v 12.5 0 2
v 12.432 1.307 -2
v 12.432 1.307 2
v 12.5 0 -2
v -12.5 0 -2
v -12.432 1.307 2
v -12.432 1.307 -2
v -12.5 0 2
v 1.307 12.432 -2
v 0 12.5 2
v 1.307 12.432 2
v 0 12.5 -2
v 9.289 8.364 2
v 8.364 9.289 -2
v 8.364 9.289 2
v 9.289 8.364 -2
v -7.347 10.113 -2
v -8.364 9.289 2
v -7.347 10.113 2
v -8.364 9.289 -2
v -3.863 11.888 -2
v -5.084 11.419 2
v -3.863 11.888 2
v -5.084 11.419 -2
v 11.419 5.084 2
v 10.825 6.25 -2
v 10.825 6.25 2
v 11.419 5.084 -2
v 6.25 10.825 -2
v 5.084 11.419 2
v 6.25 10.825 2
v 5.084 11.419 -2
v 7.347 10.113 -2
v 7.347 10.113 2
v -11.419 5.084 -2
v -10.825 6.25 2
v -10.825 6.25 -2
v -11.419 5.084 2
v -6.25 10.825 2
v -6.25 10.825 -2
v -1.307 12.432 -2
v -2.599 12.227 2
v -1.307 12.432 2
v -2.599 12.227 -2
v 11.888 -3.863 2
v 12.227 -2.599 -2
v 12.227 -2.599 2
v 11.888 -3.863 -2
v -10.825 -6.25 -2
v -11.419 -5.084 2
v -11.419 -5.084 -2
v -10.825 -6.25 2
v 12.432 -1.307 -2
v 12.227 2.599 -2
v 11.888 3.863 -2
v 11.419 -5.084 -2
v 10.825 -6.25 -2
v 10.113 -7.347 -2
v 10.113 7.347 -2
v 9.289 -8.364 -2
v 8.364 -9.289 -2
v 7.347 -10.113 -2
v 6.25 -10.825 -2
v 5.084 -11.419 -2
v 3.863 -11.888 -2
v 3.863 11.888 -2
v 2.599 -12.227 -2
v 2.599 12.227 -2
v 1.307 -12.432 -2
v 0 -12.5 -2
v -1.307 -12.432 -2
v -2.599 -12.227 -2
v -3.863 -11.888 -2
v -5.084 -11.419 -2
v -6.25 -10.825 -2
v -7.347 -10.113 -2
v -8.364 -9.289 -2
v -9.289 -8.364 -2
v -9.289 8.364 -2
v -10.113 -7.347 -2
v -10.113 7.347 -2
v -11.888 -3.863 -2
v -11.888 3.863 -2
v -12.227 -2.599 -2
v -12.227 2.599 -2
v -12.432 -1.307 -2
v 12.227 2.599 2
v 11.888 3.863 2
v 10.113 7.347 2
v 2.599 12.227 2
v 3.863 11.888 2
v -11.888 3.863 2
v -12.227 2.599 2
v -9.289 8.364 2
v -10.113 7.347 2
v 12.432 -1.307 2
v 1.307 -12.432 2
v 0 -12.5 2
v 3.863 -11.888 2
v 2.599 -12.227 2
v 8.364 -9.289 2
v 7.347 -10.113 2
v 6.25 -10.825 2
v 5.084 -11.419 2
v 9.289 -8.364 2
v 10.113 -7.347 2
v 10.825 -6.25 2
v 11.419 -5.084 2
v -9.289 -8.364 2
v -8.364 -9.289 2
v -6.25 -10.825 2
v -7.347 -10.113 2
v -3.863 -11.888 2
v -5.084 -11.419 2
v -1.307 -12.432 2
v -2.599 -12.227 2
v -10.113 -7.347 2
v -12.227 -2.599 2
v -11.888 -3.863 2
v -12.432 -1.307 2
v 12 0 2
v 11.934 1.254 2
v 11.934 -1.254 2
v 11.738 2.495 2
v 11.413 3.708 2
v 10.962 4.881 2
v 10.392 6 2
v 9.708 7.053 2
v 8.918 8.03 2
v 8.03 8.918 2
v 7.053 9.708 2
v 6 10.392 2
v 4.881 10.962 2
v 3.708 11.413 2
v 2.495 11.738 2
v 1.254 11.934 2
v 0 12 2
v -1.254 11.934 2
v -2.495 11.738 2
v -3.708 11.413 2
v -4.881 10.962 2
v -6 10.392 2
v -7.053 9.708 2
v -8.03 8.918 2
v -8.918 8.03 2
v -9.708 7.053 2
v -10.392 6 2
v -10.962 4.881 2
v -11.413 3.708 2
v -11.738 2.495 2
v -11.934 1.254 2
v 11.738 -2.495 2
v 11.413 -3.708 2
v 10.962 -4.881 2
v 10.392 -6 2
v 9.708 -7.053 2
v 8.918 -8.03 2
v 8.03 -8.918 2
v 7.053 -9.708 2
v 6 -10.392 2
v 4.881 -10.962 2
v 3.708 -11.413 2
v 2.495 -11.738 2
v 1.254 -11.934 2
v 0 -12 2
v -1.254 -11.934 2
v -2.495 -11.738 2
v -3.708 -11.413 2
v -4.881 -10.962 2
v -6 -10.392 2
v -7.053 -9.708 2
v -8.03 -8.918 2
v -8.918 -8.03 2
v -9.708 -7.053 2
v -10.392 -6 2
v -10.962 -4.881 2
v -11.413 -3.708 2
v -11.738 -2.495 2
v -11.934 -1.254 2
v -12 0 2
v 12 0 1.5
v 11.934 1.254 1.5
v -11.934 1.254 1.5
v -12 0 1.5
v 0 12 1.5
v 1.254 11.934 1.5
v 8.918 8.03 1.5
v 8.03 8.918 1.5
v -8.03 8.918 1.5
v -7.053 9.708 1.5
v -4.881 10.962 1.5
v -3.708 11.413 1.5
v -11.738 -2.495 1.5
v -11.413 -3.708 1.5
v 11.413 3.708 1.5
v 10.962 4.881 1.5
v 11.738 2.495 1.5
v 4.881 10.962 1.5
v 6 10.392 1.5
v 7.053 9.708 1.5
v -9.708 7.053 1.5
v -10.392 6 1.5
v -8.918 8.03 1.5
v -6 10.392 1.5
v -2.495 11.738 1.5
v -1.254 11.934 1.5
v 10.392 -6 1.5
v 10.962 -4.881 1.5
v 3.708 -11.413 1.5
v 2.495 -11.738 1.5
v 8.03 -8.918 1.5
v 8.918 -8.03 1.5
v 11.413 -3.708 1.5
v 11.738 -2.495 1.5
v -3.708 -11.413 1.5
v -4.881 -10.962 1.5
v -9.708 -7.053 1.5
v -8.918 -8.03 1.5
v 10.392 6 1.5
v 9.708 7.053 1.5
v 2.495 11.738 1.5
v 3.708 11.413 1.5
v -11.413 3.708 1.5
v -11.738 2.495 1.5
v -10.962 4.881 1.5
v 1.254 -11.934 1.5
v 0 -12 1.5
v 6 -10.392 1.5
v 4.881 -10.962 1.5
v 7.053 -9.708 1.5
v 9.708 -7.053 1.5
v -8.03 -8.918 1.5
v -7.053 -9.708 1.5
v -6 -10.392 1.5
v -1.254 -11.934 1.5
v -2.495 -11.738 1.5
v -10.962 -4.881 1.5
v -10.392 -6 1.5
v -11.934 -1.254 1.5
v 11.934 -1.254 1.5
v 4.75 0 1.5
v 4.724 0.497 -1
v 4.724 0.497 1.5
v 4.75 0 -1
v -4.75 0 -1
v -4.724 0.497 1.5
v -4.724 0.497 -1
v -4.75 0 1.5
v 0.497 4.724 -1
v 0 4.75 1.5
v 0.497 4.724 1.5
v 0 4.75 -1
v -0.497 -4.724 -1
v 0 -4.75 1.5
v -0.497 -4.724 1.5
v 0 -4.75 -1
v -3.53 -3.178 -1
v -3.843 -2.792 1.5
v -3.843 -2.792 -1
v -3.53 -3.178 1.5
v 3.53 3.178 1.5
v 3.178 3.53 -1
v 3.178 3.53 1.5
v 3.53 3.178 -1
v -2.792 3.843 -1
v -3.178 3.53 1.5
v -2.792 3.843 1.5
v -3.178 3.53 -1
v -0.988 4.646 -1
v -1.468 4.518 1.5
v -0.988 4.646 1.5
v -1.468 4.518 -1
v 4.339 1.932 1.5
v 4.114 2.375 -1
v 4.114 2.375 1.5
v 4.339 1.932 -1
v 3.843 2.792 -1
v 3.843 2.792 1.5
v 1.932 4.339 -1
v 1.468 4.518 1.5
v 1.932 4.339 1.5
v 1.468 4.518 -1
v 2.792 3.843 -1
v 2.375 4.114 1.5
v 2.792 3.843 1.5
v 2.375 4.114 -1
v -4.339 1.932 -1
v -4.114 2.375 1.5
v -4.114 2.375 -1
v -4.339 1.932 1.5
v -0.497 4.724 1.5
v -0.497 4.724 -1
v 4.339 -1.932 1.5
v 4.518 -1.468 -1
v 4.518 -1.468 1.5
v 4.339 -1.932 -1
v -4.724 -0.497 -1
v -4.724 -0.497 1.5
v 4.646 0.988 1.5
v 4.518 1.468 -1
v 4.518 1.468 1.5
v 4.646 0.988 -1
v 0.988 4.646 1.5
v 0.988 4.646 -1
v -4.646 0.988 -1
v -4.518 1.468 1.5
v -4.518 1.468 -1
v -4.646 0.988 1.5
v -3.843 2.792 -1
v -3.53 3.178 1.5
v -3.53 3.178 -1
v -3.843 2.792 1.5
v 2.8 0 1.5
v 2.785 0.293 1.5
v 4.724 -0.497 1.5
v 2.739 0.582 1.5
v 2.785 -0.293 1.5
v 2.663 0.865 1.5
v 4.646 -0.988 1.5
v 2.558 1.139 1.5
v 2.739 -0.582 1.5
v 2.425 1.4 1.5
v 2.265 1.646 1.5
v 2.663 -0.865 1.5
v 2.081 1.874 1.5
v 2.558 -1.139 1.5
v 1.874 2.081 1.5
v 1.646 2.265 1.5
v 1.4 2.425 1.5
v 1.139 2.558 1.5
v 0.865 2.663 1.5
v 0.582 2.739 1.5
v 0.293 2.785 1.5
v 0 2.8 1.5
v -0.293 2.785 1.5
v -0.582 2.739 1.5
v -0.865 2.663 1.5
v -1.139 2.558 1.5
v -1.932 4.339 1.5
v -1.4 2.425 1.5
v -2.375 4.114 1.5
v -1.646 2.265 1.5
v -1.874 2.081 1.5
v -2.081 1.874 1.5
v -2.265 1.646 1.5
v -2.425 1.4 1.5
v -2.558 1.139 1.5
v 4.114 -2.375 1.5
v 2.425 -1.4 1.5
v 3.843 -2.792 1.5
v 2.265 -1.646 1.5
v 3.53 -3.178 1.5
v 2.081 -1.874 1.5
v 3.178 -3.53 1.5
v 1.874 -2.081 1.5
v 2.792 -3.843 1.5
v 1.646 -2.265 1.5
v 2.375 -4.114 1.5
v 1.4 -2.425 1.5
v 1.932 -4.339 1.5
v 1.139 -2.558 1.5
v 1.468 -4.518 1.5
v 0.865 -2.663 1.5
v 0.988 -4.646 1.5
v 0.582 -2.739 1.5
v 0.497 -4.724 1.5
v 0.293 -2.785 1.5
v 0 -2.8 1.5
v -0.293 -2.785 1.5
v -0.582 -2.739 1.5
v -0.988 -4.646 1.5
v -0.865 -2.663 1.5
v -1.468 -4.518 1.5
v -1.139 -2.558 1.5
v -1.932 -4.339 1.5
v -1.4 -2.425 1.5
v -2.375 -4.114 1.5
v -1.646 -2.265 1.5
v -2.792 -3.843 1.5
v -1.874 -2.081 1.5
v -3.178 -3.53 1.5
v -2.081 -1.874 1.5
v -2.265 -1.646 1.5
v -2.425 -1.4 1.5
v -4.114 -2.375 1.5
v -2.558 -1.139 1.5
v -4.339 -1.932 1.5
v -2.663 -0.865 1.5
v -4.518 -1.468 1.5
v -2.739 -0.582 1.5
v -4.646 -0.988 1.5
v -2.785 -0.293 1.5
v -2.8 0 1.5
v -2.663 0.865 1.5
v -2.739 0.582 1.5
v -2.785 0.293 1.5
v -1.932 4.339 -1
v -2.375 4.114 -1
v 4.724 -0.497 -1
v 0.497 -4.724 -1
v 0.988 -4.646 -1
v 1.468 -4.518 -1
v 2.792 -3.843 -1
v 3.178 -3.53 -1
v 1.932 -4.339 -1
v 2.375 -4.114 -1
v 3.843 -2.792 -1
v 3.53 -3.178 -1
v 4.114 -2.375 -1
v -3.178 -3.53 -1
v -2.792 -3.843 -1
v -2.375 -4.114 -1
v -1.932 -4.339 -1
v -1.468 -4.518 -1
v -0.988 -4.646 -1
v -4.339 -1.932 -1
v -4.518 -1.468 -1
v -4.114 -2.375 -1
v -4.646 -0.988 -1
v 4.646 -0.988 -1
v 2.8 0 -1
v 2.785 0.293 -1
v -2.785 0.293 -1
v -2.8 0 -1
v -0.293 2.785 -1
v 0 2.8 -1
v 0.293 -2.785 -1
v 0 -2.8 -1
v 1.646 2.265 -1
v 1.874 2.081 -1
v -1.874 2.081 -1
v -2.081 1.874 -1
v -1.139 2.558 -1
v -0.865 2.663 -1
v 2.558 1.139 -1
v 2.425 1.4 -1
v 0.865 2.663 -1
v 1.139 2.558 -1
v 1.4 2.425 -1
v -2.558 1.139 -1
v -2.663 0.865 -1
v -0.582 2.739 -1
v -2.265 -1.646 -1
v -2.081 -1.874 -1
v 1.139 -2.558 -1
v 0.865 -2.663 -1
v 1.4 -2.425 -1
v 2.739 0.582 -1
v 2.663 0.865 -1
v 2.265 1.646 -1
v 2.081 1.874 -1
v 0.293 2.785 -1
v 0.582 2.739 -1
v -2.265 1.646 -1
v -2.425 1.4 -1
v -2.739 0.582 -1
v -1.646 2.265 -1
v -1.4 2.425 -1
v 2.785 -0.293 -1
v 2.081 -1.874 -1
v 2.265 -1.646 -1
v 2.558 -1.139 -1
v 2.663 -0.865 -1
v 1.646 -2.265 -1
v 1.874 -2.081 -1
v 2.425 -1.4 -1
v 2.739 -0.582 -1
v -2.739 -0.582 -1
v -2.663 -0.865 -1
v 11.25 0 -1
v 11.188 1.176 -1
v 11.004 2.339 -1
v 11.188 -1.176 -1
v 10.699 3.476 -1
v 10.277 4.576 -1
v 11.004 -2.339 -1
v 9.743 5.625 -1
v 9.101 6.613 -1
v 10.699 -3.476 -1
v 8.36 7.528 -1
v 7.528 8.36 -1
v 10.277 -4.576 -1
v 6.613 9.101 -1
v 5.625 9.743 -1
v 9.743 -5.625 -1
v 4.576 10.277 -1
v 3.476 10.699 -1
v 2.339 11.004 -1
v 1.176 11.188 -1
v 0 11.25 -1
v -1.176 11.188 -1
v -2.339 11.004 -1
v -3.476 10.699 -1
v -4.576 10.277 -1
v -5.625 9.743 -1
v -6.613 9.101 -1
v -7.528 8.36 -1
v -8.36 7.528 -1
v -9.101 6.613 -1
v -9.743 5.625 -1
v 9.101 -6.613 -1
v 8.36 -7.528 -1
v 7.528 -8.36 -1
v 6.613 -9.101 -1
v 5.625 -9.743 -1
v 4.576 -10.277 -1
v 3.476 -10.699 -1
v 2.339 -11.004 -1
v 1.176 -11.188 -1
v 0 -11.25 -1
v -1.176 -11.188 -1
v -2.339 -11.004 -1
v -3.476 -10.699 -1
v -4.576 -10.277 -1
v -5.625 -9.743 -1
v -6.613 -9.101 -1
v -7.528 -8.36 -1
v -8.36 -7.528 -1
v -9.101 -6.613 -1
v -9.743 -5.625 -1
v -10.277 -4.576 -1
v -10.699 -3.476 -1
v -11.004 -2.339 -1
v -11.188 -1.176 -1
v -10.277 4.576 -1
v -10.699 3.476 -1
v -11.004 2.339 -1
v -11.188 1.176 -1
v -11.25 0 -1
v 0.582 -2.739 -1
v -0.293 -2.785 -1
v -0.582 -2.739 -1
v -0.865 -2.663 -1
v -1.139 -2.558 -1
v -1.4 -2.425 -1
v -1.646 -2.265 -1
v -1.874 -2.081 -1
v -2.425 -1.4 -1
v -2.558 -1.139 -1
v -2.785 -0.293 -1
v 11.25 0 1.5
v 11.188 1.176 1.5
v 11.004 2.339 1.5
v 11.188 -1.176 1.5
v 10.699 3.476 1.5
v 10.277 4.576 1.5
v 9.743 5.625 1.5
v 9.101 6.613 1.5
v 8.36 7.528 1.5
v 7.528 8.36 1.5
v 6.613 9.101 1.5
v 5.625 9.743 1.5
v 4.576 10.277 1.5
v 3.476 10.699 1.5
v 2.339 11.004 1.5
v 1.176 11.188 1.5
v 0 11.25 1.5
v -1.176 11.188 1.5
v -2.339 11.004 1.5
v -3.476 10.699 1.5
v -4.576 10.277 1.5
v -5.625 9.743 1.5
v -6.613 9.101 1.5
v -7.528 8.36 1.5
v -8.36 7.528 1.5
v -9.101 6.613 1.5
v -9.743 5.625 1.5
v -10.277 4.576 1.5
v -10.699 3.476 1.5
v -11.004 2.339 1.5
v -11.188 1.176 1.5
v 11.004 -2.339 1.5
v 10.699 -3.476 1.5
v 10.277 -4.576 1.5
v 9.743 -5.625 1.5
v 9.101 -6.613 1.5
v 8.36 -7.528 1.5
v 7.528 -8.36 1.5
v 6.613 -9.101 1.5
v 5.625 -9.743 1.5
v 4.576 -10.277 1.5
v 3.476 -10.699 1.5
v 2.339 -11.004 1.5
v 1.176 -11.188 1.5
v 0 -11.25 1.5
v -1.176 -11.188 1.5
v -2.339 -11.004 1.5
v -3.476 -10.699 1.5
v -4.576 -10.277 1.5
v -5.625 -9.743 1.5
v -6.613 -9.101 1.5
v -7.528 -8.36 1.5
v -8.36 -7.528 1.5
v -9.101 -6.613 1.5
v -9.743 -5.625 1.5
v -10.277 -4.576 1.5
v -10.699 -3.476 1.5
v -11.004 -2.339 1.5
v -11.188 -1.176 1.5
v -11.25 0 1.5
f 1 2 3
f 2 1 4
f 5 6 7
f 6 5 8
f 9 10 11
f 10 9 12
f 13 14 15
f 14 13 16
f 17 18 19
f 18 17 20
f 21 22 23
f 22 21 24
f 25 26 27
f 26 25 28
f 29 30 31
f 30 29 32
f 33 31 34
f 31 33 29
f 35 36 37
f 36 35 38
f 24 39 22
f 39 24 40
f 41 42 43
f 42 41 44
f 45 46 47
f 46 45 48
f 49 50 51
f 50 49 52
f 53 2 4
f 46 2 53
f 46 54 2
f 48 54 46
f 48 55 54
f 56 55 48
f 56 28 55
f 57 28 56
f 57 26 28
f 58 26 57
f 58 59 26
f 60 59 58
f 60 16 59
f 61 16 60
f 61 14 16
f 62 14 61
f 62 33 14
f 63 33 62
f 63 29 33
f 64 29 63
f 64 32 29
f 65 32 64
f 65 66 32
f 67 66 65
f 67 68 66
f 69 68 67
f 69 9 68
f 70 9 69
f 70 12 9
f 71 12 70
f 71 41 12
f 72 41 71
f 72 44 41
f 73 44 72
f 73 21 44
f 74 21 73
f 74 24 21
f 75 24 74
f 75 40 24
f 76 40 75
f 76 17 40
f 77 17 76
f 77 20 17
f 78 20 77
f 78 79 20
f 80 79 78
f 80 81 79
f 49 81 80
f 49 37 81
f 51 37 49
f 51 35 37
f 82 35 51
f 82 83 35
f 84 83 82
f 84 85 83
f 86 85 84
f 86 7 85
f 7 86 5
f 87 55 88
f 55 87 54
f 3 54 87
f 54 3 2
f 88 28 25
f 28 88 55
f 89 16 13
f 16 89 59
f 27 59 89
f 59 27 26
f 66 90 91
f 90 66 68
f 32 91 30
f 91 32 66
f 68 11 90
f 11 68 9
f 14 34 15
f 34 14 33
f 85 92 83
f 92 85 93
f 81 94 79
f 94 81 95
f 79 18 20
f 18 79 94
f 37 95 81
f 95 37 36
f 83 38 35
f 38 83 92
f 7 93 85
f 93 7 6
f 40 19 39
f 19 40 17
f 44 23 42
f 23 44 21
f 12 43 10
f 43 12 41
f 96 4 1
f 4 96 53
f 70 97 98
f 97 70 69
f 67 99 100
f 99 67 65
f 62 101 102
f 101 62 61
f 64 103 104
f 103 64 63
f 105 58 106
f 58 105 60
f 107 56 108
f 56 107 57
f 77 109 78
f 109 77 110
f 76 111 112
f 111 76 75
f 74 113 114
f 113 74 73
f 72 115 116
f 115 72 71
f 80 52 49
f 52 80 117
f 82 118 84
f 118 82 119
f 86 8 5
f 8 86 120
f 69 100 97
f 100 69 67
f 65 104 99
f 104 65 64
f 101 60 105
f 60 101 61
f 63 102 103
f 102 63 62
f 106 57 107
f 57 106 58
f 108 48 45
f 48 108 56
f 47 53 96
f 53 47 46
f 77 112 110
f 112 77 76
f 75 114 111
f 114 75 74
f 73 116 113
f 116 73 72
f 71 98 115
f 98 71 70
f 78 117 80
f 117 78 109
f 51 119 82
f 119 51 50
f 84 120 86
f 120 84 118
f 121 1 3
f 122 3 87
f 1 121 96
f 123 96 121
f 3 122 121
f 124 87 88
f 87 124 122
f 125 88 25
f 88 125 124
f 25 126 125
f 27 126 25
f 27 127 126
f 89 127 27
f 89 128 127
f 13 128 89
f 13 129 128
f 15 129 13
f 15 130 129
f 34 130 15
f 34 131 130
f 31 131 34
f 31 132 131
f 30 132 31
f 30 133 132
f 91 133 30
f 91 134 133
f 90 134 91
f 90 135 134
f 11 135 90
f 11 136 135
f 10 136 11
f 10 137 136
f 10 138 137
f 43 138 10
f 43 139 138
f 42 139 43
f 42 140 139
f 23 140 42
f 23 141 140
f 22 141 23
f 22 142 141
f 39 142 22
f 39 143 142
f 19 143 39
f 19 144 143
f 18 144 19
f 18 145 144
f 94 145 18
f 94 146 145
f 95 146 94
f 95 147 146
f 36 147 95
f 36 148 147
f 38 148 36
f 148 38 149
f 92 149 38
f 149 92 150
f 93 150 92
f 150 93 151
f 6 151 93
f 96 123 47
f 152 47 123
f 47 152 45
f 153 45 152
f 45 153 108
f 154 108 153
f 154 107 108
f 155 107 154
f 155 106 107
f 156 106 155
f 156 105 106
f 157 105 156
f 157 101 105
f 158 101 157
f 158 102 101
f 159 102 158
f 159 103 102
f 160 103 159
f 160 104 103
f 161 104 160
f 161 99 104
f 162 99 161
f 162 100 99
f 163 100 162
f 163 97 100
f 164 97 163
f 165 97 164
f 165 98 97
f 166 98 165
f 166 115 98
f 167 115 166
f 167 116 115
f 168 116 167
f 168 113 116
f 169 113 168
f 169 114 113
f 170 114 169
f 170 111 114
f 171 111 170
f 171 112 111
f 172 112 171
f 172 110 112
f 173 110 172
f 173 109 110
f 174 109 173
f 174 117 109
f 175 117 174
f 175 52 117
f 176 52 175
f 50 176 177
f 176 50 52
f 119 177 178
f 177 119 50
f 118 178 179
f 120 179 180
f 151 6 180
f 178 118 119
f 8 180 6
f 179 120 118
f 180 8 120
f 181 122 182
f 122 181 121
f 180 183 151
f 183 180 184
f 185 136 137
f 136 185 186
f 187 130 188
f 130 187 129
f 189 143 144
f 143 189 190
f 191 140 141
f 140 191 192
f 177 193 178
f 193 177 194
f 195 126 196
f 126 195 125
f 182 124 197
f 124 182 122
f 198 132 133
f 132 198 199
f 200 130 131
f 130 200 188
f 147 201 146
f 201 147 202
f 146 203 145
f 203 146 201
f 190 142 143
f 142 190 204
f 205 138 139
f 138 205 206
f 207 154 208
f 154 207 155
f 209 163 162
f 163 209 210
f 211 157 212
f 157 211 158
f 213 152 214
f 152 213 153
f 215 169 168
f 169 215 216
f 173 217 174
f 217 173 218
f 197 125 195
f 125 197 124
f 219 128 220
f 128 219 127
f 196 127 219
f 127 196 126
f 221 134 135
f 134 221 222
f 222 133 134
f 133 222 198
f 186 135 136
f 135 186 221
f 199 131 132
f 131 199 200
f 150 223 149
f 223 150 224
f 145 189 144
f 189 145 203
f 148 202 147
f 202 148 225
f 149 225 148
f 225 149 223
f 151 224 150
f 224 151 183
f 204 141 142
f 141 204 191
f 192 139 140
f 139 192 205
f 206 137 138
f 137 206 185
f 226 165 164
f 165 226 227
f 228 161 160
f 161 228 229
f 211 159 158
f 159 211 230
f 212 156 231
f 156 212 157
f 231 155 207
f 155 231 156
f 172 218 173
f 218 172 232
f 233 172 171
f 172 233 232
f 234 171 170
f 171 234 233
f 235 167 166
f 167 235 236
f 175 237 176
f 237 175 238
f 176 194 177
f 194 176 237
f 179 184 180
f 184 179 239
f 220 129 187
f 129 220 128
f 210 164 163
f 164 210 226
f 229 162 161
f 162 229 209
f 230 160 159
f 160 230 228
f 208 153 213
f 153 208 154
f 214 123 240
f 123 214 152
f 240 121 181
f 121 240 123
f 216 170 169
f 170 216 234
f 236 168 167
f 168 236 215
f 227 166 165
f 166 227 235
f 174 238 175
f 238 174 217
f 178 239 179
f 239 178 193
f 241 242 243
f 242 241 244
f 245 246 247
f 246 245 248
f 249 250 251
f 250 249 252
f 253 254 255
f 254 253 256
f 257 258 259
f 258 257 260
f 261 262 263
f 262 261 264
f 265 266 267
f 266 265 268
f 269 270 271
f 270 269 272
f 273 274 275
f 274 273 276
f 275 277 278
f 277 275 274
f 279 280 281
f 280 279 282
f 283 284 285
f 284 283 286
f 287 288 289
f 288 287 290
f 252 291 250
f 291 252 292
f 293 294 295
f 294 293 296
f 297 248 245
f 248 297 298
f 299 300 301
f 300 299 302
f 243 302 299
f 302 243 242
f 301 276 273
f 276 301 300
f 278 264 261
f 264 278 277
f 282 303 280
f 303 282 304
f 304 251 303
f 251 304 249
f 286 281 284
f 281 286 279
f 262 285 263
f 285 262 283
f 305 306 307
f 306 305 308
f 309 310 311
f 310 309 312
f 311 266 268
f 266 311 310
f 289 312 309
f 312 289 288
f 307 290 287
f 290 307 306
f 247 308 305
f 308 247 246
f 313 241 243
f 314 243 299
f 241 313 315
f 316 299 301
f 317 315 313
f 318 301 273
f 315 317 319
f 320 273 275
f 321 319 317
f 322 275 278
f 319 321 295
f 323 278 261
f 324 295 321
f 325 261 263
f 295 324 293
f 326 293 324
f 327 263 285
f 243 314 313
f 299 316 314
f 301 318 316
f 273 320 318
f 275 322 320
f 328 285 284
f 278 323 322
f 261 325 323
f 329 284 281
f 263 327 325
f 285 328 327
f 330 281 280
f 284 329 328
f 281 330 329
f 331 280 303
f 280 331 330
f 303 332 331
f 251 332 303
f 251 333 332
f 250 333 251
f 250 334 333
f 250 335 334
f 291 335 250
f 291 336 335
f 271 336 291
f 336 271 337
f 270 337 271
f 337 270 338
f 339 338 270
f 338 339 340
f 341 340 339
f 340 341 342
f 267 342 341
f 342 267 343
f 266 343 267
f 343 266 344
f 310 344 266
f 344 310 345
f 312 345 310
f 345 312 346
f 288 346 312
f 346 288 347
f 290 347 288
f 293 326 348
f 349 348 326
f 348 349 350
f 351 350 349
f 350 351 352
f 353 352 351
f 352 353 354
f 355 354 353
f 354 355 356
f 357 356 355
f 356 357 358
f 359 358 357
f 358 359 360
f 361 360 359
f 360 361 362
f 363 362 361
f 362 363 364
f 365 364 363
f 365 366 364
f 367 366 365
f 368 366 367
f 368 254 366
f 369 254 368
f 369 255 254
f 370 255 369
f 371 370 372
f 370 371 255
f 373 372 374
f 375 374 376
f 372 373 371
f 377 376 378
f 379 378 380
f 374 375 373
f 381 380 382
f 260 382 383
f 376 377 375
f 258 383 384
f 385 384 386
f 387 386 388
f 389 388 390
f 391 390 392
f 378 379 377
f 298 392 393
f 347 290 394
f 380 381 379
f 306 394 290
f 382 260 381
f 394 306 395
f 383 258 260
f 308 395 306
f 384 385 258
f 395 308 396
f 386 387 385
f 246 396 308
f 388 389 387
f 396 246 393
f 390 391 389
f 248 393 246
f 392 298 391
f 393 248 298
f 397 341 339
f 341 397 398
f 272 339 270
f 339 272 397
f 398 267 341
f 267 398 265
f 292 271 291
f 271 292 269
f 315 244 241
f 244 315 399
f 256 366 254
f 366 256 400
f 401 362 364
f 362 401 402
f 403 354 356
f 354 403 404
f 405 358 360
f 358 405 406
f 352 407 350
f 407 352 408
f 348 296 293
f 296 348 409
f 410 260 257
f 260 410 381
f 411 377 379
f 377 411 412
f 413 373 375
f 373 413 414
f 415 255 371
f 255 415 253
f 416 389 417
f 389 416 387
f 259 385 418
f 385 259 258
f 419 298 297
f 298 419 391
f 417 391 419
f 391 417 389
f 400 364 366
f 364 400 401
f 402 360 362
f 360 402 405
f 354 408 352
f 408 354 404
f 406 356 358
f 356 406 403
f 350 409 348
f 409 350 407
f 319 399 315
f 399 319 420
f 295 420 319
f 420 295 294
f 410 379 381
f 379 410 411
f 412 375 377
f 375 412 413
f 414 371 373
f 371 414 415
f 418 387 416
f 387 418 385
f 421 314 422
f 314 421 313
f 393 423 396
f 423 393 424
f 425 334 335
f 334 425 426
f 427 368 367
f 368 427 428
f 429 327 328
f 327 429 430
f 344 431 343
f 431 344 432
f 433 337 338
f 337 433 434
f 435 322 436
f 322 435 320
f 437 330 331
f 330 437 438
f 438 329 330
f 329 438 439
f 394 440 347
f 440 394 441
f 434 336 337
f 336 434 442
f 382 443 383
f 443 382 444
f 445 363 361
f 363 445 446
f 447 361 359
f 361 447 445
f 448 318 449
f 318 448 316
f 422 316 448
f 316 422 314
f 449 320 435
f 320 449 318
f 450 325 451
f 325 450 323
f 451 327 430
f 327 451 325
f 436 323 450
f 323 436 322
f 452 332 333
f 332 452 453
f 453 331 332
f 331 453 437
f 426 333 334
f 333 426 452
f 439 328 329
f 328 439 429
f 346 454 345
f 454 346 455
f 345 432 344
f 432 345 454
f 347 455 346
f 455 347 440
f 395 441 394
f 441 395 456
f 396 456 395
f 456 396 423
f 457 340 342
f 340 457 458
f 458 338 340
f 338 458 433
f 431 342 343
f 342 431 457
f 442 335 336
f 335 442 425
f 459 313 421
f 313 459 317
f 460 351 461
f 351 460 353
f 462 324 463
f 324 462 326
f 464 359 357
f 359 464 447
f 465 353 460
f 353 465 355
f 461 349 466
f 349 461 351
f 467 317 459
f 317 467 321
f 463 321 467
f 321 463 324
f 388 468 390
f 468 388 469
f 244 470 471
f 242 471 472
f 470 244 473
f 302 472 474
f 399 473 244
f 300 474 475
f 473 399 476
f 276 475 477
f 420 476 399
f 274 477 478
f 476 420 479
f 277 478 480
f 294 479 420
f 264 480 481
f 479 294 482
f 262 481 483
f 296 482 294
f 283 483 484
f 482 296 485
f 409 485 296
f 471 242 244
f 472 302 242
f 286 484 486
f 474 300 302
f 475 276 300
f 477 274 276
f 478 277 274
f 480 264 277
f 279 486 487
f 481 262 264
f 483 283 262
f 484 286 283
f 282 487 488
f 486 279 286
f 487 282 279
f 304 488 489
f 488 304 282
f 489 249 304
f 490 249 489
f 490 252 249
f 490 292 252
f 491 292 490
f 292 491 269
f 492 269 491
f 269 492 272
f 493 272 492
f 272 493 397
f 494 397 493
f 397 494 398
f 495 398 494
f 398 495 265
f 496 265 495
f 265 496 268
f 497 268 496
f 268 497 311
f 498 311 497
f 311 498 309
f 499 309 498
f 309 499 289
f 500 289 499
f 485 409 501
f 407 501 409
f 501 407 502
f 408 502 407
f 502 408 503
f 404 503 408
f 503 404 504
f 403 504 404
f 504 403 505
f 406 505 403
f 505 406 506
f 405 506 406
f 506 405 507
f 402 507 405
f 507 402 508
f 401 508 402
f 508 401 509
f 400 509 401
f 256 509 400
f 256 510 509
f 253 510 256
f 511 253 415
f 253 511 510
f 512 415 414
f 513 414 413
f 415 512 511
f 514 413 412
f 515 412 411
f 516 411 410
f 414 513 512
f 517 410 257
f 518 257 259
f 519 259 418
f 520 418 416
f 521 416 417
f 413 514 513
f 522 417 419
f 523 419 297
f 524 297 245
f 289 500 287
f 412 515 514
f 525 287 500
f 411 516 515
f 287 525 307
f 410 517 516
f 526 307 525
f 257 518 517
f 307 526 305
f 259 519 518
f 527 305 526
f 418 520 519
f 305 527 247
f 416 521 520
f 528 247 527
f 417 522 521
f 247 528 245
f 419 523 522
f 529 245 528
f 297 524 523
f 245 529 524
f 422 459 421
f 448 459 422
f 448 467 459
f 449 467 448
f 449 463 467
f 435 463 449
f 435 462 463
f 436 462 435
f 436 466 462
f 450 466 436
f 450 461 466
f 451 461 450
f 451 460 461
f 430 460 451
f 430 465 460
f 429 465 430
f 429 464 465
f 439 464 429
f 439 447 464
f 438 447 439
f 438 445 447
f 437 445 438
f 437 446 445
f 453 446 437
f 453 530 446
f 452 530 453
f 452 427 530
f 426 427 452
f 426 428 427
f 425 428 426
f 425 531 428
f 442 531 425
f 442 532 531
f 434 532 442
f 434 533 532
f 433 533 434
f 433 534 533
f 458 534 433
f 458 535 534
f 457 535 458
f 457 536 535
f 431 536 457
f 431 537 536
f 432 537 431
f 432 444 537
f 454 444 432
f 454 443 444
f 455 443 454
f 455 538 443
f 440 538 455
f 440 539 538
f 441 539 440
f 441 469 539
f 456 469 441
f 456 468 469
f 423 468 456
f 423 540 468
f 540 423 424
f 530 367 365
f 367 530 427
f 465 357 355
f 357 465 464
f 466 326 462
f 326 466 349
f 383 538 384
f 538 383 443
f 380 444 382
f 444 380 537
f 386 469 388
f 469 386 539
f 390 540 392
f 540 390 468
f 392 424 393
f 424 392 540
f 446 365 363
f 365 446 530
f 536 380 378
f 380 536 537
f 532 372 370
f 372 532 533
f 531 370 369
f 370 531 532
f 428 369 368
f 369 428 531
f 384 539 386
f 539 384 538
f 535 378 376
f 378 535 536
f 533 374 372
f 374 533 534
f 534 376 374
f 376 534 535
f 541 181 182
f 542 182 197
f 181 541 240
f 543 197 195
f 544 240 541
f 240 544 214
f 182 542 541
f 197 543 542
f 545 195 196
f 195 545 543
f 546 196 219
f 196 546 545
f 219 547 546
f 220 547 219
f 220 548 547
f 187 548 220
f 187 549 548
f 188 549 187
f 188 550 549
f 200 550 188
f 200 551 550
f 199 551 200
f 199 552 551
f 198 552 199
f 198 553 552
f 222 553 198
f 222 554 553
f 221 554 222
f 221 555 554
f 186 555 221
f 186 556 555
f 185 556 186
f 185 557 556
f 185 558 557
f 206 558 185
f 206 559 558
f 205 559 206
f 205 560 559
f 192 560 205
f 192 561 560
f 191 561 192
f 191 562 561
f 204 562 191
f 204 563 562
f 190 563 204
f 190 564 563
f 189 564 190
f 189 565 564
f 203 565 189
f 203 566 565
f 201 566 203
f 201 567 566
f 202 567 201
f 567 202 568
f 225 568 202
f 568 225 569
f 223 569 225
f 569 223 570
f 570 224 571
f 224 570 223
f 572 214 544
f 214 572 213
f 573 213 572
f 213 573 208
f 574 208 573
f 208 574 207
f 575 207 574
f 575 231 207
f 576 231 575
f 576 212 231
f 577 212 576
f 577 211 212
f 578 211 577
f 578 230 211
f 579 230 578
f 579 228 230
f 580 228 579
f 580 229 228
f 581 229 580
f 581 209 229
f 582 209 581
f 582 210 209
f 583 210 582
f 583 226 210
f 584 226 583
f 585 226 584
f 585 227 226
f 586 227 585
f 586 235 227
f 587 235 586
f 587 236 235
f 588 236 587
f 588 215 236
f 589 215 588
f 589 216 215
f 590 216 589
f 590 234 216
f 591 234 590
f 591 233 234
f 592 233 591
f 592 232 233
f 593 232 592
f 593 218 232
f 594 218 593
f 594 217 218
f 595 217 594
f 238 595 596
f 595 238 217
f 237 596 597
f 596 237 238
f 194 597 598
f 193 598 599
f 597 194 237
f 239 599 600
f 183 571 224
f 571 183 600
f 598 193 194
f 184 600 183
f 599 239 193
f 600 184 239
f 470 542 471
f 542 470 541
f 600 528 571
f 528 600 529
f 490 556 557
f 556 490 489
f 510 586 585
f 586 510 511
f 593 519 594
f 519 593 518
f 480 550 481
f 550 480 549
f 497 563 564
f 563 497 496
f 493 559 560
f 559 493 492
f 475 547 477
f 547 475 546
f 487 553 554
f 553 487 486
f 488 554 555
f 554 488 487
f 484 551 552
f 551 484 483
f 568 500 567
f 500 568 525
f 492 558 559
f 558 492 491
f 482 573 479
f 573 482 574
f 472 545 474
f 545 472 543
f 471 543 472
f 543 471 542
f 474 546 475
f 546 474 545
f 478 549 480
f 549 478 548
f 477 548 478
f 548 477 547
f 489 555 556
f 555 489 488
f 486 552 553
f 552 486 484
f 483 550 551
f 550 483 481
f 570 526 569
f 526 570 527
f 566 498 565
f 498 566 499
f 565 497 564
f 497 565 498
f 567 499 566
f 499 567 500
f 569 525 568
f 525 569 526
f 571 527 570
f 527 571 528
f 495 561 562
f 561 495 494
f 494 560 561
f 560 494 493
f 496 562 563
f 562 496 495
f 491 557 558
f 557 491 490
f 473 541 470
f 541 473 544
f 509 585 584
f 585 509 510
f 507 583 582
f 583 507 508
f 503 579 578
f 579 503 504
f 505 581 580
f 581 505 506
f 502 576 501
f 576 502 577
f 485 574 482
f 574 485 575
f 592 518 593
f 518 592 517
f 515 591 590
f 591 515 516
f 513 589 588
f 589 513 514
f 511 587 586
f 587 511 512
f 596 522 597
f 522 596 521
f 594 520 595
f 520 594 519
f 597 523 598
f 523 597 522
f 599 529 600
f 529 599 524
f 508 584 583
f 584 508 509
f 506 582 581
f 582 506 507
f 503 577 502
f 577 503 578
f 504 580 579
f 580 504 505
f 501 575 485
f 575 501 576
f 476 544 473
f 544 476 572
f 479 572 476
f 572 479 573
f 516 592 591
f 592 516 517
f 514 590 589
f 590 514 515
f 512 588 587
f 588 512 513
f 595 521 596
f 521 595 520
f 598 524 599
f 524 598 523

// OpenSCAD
// Bundelliga-Marker

dia = 9.5;
dii = 5.6;
daa = 25;
dai = 22.5;
dra = 25;
dri = 24;

bmhi = 3.0;
bmha = 3.0;
bmh = 4;
$fn = 60;

innenTeil();
aussenTeil();
rand();

module innenTeil() {
    difference() {
        cylinder(d=dia, h=bmhi, center=true);
        translate([0,0,0.5])
        cylinder(d=dii, h=bmhi, center=true);
    }
}

module aussenTeil() {
    difference() {
        cylinder(d=daa, h=bmha, center=true);
        translate([0,0,0.5])
        cylinder(d=dai, h=bmha, center=true);
    }
}
module rand() {
    difference() {
        cylinder(d=dra, h=bmh, center=true);
        translate([0,0,0.5])
        cylinder(d=dri, h=bmh, center=true);
    }
}
